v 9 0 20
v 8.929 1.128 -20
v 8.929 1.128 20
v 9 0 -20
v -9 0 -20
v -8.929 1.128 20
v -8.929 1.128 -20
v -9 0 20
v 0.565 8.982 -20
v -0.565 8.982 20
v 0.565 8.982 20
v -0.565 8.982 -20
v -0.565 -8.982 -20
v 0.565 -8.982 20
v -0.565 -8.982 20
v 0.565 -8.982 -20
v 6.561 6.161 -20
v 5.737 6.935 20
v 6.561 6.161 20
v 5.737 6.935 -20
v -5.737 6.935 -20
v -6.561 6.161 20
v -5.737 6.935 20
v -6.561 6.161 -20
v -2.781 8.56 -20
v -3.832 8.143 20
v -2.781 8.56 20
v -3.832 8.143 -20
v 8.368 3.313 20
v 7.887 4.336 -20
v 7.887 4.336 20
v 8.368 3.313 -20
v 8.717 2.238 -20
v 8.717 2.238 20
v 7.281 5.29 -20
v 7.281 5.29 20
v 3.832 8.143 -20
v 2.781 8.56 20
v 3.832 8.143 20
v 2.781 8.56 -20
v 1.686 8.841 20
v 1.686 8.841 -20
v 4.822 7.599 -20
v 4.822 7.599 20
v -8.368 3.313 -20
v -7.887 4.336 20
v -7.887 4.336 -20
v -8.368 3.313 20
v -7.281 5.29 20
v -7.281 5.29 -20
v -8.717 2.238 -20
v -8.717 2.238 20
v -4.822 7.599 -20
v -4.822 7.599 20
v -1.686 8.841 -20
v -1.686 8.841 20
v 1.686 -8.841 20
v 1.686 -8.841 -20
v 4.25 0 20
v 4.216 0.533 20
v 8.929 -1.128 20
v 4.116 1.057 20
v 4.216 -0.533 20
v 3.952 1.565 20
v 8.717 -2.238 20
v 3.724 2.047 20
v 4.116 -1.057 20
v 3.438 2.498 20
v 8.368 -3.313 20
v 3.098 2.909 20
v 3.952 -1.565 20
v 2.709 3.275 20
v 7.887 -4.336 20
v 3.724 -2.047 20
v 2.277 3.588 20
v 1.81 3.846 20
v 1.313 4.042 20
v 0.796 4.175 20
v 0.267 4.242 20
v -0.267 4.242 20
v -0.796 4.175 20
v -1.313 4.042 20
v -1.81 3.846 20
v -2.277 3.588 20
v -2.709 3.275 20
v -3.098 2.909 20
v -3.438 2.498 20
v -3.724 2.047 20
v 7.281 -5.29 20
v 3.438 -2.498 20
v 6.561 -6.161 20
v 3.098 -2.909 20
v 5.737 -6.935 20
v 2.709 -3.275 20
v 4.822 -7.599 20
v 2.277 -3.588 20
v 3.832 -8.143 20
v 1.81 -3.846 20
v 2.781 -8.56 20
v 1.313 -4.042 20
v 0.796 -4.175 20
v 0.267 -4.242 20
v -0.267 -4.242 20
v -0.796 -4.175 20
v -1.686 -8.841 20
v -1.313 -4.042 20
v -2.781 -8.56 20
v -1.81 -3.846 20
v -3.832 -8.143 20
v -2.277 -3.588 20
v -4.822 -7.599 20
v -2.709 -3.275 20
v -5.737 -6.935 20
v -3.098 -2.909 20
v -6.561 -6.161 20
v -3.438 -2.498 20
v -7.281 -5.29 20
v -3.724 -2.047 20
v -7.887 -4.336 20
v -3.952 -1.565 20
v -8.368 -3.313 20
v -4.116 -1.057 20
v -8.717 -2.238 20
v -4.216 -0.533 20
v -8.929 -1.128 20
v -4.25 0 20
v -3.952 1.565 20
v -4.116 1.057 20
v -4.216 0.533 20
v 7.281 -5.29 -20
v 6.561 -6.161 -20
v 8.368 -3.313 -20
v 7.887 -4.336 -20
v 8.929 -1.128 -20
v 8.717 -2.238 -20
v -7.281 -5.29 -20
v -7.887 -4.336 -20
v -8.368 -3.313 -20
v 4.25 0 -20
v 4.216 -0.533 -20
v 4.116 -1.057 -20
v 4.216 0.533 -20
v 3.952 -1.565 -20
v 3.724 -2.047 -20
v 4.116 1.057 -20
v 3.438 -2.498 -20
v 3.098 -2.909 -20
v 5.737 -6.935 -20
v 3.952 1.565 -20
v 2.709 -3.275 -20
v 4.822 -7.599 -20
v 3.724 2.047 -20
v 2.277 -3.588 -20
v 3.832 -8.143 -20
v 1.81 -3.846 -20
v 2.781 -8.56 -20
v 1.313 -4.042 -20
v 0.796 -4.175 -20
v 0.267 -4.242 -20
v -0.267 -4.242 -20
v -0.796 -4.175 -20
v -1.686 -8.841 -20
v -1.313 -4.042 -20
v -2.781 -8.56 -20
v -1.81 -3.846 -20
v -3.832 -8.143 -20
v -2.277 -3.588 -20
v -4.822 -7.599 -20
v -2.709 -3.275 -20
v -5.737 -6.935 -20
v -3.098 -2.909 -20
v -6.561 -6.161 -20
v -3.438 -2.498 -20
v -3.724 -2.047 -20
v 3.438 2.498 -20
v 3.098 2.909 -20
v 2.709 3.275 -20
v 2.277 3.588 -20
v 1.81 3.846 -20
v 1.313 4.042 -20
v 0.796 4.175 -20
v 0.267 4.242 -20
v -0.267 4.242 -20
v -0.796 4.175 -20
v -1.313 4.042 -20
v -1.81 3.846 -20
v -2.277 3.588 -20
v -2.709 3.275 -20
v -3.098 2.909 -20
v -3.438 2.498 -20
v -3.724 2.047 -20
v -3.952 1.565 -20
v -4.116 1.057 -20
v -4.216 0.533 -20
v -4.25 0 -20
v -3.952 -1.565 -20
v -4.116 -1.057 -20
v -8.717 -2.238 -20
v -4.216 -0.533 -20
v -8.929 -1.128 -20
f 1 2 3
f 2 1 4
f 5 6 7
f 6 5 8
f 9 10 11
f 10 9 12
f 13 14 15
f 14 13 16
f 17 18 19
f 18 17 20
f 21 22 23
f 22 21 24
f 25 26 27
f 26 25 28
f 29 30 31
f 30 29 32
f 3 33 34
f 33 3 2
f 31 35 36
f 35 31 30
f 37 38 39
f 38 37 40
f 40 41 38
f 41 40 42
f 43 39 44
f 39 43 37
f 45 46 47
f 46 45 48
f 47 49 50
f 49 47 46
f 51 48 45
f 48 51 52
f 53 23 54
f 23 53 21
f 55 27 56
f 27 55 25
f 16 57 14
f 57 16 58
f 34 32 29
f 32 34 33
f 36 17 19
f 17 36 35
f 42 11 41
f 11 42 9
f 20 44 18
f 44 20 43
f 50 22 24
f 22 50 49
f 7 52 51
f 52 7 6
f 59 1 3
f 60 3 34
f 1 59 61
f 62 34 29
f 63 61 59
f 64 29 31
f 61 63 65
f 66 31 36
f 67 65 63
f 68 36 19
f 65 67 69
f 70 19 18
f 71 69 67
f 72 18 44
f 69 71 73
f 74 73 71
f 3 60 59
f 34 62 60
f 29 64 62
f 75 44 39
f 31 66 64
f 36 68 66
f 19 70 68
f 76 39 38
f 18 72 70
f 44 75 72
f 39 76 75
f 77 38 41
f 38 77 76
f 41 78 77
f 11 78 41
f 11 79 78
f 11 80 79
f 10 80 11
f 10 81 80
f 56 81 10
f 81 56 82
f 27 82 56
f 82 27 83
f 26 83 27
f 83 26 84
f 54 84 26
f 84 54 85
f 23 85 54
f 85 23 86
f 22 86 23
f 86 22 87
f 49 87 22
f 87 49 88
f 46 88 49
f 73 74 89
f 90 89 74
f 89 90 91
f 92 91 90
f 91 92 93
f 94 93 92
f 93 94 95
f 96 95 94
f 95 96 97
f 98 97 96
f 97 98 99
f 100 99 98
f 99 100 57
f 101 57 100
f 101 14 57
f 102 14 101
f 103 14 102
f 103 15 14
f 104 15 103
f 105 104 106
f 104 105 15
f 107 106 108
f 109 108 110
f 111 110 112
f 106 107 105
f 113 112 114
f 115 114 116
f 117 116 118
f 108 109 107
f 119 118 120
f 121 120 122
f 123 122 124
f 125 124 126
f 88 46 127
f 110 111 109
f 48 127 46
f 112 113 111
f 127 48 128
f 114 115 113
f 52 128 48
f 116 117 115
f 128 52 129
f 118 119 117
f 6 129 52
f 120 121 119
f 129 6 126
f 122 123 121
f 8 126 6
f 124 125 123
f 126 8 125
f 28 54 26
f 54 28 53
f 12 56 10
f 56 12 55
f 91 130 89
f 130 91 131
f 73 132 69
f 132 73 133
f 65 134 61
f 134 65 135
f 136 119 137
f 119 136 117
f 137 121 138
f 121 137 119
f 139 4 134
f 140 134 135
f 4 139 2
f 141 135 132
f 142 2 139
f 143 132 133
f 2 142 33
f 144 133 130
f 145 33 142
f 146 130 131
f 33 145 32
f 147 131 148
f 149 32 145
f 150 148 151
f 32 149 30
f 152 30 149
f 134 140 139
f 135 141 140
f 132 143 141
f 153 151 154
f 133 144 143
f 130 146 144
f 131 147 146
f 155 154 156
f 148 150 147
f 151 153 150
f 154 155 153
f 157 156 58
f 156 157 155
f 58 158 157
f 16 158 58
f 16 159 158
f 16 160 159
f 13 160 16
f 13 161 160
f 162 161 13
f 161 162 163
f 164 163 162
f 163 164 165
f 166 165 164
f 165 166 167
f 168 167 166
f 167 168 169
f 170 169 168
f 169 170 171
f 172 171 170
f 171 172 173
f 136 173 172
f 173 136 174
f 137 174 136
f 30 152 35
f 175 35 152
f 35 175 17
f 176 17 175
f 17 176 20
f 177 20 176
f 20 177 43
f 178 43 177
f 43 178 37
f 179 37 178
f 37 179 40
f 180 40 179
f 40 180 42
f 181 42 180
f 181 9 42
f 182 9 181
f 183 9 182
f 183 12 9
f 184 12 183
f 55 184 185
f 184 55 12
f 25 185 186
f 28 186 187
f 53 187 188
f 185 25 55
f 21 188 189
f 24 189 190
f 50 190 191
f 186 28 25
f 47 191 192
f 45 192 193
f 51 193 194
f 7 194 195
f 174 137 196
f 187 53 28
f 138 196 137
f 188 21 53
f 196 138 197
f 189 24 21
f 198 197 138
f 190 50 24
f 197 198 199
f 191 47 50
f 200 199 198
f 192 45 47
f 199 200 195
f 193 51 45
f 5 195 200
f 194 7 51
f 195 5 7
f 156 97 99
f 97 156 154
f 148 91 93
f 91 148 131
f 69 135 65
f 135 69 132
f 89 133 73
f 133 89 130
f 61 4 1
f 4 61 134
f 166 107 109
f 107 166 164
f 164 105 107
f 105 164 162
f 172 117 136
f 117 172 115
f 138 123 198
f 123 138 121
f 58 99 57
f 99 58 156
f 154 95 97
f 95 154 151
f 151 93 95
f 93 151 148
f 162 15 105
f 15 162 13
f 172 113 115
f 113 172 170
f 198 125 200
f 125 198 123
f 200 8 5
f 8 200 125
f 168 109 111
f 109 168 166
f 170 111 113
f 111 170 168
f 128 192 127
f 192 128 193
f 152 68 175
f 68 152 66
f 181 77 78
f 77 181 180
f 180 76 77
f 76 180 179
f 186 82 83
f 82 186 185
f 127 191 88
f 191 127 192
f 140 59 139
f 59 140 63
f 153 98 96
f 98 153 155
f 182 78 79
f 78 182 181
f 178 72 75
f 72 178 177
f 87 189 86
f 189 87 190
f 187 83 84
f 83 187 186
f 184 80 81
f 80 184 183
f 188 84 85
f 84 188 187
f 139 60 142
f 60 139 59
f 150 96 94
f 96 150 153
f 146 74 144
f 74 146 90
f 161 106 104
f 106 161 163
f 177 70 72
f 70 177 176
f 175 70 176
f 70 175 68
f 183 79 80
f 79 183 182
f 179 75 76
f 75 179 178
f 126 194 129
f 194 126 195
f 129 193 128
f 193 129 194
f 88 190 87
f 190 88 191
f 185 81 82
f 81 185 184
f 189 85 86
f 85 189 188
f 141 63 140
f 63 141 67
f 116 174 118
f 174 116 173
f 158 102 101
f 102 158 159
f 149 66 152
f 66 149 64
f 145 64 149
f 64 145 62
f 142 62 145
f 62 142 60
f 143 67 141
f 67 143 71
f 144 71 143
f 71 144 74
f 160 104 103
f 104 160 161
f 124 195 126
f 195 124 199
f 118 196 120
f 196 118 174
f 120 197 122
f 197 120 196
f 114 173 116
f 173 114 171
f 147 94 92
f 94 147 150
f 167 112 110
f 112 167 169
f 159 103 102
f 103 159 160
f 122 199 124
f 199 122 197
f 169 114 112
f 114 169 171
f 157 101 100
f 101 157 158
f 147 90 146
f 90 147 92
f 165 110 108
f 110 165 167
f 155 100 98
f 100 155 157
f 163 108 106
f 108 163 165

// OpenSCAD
$fn = 50;


difference() {
	union() {
		translate(v = [0, 0, -20.0000000000]) {
			cylinder(h = 40, r = 9.0000000000);
		}
	}
	union() {
		translate(v = [0, 0, -100.0000000000]) {
			cylinder(h = 200, r = 4.2500000000);
		}
	}
}
